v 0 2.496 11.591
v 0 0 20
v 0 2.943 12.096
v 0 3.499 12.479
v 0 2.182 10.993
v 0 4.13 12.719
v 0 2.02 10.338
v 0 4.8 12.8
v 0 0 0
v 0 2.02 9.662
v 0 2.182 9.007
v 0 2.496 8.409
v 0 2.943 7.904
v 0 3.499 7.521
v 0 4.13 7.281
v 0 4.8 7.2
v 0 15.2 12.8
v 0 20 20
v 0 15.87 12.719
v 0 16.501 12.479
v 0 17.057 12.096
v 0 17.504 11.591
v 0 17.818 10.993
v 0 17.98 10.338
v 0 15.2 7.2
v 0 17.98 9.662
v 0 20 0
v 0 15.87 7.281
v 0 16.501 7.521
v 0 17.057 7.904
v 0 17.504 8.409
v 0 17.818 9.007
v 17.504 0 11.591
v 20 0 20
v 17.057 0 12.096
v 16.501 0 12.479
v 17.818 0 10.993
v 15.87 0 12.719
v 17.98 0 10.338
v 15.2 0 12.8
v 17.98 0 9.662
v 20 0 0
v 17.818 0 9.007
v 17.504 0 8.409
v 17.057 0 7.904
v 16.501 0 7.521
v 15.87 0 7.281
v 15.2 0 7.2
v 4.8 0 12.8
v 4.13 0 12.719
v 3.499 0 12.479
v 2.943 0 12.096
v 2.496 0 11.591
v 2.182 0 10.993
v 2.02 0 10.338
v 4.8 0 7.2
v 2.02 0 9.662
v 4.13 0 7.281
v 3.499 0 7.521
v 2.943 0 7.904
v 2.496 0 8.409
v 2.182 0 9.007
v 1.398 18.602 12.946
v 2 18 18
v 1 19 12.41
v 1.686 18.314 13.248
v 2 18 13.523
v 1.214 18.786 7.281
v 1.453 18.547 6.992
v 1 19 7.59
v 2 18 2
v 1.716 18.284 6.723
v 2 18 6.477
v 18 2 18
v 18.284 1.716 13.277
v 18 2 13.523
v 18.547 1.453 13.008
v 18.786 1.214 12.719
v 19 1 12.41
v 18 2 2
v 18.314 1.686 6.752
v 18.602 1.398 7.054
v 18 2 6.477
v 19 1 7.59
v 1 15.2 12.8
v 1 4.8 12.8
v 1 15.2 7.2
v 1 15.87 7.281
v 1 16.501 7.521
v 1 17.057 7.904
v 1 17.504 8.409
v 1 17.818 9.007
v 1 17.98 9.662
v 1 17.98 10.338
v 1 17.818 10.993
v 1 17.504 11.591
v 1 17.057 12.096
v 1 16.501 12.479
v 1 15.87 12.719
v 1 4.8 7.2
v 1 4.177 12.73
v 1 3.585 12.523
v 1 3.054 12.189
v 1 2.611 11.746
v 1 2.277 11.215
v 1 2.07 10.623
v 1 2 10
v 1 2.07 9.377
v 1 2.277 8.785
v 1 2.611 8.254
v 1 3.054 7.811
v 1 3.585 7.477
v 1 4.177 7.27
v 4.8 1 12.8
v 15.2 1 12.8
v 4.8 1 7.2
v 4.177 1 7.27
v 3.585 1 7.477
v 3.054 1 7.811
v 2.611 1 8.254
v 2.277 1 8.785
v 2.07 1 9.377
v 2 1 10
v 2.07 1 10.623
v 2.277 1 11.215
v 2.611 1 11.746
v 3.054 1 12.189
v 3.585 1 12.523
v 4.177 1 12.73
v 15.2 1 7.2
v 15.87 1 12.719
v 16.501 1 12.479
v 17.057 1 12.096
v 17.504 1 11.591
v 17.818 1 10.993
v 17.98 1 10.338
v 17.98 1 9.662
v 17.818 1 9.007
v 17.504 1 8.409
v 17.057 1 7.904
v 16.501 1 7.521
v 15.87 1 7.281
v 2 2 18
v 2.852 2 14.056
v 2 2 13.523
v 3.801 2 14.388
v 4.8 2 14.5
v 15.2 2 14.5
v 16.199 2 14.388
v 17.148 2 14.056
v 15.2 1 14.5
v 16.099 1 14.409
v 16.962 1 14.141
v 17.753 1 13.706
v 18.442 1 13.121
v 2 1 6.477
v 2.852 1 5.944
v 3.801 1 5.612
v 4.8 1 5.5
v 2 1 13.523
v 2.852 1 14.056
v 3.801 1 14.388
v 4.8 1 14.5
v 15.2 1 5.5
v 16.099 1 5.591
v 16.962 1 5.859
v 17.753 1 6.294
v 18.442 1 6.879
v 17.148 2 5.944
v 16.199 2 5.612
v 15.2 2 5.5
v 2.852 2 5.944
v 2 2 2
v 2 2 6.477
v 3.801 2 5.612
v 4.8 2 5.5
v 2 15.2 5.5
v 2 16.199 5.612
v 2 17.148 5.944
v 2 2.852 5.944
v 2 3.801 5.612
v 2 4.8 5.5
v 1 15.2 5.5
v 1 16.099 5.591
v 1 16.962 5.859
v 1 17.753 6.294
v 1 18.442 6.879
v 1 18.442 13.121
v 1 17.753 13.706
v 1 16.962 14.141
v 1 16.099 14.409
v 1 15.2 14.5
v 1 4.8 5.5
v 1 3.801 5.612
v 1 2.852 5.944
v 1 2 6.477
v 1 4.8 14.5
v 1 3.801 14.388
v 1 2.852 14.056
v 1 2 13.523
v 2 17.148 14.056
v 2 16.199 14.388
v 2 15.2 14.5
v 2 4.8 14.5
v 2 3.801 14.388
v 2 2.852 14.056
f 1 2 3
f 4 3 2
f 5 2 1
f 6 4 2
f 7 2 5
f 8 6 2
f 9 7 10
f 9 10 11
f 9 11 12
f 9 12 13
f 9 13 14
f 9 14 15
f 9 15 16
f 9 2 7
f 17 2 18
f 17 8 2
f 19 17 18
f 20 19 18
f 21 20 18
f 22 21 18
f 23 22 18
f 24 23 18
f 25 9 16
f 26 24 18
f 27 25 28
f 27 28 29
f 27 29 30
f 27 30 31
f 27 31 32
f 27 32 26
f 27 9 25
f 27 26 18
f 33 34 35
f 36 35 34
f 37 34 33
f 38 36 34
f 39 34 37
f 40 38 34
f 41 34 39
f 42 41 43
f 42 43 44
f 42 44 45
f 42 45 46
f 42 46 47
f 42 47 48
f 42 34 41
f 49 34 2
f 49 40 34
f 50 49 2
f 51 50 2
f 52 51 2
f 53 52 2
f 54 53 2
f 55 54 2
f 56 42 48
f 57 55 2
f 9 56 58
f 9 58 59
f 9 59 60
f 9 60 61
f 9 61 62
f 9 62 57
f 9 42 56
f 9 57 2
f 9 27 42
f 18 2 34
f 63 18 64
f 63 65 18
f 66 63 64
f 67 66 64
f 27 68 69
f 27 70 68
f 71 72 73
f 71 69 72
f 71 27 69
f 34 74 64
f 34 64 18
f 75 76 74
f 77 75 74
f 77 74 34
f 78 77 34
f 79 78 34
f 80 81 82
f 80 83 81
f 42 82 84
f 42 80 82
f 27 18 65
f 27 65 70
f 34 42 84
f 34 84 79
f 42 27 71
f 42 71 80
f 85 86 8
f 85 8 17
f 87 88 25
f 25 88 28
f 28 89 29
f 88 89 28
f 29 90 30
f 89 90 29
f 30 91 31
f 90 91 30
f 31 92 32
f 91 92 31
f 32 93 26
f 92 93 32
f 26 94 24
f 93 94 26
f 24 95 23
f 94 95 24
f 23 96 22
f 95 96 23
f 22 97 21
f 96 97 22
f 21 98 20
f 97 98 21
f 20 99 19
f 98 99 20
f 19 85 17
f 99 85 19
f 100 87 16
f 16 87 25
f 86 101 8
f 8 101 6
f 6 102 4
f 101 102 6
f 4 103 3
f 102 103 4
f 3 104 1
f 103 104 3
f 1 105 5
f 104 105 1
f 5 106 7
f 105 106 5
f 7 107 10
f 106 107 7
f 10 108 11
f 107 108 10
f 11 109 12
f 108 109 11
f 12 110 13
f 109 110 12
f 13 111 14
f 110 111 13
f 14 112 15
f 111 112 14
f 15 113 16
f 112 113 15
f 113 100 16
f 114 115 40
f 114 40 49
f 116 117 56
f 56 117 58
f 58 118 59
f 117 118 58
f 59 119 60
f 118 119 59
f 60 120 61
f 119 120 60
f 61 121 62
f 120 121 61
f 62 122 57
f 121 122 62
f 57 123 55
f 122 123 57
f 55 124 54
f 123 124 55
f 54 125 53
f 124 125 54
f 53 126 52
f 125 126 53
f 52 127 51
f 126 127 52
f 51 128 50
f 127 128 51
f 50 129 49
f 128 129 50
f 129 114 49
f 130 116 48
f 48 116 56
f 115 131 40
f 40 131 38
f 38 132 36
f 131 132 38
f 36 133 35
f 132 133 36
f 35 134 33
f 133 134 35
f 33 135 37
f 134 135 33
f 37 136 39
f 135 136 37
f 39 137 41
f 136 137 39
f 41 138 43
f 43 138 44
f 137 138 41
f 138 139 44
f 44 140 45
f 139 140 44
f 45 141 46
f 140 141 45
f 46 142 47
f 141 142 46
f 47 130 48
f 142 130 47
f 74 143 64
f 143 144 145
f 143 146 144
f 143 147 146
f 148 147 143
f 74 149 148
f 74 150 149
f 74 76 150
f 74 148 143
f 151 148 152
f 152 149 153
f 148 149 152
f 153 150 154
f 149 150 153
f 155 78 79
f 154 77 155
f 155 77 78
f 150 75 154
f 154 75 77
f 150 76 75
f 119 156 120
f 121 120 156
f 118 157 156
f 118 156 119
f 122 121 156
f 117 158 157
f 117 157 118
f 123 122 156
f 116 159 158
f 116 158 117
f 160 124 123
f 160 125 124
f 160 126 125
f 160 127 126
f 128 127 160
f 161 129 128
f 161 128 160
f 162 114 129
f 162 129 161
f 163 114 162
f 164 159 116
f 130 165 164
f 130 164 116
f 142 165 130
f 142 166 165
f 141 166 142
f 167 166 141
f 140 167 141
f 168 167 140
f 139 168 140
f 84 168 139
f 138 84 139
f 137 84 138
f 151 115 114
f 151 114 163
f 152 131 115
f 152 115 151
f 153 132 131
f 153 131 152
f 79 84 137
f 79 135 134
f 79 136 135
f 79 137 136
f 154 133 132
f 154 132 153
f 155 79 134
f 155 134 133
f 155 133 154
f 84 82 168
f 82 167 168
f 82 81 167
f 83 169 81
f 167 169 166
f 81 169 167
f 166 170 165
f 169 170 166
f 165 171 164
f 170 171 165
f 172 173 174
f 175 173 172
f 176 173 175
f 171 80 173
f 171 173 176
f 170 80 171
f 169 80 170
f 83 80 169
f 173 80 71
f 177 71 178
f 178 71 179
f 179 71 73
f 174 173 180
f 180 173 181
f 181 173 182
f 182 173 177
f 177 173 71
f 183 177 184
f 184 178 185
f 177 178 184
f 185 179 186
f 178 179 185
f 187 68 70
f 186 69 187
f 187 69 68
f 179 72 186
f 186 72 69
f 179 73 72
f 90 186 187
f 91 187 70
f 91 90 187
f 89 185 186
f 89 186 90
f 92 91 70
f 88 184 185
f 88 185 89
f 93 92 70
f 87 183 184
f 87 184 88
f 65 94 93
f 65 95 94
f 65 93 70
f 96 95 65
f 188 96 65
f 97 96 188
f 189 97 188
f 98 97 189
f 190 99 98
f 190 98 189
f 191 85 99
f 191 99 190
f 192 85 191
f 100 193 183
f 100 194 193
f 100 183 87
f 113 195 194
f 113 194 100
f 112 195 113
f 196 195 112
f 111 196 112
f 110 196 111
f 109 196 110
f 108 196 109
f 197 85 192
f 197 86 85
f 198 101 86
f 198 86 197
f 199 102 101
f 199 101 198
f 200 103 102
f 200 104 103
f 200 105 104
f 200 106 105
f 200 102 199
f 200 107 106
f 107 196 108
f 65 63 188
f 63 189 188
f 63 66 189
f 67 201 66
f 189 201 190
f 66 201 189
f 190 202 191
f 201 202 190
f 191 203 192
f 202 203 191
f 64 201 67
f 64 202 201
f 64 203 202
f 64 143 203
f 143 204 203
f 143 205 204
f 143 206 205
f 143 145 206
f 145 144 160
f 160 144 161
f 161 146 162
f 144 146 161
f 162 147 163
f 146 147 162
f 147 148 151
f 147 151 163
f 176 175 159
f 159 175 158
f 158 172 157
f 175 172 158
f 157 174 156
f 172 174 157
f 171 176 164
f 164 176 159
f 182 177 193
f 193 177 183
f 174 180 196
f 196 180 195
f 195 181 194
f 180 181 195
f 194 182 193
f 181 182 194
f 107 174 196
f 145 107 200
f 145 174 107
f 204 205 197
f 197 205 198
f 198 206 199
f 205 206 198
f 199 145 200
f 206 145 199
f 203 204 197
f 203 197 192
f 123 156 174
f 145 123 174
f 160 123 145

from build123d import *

# Parameters (mm, degrees)
PAD_DEPTH            = 20
SKETCH001_W          = 18
SKETCH001_H          = 16
POCKET_DEPTH         = 18.001
POCKET001_DEPTH      = 2.001
POCKET002_DEPTH      = 1
POCKET002_DEPTH_BACK = -5
POCKET003_DEPTH      = 2.001
POCKET004_DEPTH      = 1


with BuildPart() as part:
    # Sketch → Pad (new body)
    with BuildSketch(Plane.XY):
        Polygon((0, 0), (0, 20), (20, 0), align=None)
    extrude(amount=PAD_DEPTH)

    # Sketch001 → Pocket (cut, through all)
    with BuildSketch(Plane.XZ.offset(-2)):
        with Locations((11, 10)):
            Rectangle(SKETCH001_W, SKETCH001_H)
    extrude(amount=-POCKET_DEPTH, mode=Mode.SUBTRACT)

    # Sketch002 (on Face9 of Pocket) → Pocket001 (cut, through all)
    with BuildSketch(Plane.YZ.offset(2)):
        with BuildLine():
            ThreePointArc((4.8, 12.8), (2, 10), (4.8, 7.2))
            Line((4.8, 7.2), (15.2, 7.2))
            ThreePointArc((15.2, 7.2), (18, 10), (15.2, 12.8))
            Line((4.8, 12.8), (15.2, 12.8))
        make_face()
    extrude(amount=-POCKET001_DEPTH, mode=Mode.SUBTRACT)

    # Sketch003 (on Face13 of Pocket001) → Pocket002 (cut, two sides)
    with BuildSketch(Plane.YZ.offset(2)) as pocket002_sk:
        with BuildLine():
            ThreePointArc((15.2, 5.5), (19.7, 10), (15.2, 14.5))
            Line((4.8, 14.5), (15.2, 14.5))
            ThreePointArc((4.8, 14.5), (3.317186, 14.248678), (2, 13.522783))
            Line((2, 13.522783), (2, 6.477217))
            ThreePointArc((2, 6.477217), (3.317186, 5.751322), (4.8, 5.5))
            Line((4.8, 5.5), (15.2, 5.5))
        make_face()
    extrude(amount=-POCKET002_DEPTH, mode=Mode.SUBTRACT)
    extrude(pocket002_sk.sketch, amount=-POCKET002_DEPTH_BACK, mode=Mode.SUBTRACT)

    # Sketch004 (on Face21 of Pocket002) → Pocket003 (cut, through all)
    with BuildSketch(Plane(origin=(0, 2, 0), x_dir=(-1, 0, 0), z_dir=(0, 1, 0))):
        with BuildLine():
            ThreePointArc((-15.2, 12.8), (-18, 10), (-15.2, 7.2))
            Line((-15.2, 7.2), (-4.8, 7.2))
            ThreePointArc((-4.8, 7.2), (-2, 10), (-4.8, 12.8))
            Line((-15.2, 12.8), (-4.8, 12.8))
        make_face()
    extrude(amount=-POCKET003_DEPTH, mode=Mode.SUBTRACT)

    # Sketch005 (on Face15 of Pocket003) → Pocket004 (cut)
    with BuildSketch(Plane(origin=(0, 2, 0), x_dir=(-1, 0, 0), z_dir=(0, 1, 0))):
        with BuildLine():
            ThreePointArc((-15.2, 14.5), (-19.7, 10), (-15.2, 5.5))
            Line((-15.2, 5.5), (-4.8, 5.5))
            ThreePointArc((-4.8, 5.5), (-3.317186, 5.751322), (-2, 6.477217))
            Line((-2, 13.522783), (-2, 6.477217))
            ThreePointArc((-2, 13.522783), (-3.317186, 14.248678), (-4.8, 14.5))
            Line((-15.2, 14.5), (-4.8, 14.5))
        make_face()
    extrude(amount=-POCKET004_DEPTH, mode=Mode.SUBTRACT)


solid = part.part
